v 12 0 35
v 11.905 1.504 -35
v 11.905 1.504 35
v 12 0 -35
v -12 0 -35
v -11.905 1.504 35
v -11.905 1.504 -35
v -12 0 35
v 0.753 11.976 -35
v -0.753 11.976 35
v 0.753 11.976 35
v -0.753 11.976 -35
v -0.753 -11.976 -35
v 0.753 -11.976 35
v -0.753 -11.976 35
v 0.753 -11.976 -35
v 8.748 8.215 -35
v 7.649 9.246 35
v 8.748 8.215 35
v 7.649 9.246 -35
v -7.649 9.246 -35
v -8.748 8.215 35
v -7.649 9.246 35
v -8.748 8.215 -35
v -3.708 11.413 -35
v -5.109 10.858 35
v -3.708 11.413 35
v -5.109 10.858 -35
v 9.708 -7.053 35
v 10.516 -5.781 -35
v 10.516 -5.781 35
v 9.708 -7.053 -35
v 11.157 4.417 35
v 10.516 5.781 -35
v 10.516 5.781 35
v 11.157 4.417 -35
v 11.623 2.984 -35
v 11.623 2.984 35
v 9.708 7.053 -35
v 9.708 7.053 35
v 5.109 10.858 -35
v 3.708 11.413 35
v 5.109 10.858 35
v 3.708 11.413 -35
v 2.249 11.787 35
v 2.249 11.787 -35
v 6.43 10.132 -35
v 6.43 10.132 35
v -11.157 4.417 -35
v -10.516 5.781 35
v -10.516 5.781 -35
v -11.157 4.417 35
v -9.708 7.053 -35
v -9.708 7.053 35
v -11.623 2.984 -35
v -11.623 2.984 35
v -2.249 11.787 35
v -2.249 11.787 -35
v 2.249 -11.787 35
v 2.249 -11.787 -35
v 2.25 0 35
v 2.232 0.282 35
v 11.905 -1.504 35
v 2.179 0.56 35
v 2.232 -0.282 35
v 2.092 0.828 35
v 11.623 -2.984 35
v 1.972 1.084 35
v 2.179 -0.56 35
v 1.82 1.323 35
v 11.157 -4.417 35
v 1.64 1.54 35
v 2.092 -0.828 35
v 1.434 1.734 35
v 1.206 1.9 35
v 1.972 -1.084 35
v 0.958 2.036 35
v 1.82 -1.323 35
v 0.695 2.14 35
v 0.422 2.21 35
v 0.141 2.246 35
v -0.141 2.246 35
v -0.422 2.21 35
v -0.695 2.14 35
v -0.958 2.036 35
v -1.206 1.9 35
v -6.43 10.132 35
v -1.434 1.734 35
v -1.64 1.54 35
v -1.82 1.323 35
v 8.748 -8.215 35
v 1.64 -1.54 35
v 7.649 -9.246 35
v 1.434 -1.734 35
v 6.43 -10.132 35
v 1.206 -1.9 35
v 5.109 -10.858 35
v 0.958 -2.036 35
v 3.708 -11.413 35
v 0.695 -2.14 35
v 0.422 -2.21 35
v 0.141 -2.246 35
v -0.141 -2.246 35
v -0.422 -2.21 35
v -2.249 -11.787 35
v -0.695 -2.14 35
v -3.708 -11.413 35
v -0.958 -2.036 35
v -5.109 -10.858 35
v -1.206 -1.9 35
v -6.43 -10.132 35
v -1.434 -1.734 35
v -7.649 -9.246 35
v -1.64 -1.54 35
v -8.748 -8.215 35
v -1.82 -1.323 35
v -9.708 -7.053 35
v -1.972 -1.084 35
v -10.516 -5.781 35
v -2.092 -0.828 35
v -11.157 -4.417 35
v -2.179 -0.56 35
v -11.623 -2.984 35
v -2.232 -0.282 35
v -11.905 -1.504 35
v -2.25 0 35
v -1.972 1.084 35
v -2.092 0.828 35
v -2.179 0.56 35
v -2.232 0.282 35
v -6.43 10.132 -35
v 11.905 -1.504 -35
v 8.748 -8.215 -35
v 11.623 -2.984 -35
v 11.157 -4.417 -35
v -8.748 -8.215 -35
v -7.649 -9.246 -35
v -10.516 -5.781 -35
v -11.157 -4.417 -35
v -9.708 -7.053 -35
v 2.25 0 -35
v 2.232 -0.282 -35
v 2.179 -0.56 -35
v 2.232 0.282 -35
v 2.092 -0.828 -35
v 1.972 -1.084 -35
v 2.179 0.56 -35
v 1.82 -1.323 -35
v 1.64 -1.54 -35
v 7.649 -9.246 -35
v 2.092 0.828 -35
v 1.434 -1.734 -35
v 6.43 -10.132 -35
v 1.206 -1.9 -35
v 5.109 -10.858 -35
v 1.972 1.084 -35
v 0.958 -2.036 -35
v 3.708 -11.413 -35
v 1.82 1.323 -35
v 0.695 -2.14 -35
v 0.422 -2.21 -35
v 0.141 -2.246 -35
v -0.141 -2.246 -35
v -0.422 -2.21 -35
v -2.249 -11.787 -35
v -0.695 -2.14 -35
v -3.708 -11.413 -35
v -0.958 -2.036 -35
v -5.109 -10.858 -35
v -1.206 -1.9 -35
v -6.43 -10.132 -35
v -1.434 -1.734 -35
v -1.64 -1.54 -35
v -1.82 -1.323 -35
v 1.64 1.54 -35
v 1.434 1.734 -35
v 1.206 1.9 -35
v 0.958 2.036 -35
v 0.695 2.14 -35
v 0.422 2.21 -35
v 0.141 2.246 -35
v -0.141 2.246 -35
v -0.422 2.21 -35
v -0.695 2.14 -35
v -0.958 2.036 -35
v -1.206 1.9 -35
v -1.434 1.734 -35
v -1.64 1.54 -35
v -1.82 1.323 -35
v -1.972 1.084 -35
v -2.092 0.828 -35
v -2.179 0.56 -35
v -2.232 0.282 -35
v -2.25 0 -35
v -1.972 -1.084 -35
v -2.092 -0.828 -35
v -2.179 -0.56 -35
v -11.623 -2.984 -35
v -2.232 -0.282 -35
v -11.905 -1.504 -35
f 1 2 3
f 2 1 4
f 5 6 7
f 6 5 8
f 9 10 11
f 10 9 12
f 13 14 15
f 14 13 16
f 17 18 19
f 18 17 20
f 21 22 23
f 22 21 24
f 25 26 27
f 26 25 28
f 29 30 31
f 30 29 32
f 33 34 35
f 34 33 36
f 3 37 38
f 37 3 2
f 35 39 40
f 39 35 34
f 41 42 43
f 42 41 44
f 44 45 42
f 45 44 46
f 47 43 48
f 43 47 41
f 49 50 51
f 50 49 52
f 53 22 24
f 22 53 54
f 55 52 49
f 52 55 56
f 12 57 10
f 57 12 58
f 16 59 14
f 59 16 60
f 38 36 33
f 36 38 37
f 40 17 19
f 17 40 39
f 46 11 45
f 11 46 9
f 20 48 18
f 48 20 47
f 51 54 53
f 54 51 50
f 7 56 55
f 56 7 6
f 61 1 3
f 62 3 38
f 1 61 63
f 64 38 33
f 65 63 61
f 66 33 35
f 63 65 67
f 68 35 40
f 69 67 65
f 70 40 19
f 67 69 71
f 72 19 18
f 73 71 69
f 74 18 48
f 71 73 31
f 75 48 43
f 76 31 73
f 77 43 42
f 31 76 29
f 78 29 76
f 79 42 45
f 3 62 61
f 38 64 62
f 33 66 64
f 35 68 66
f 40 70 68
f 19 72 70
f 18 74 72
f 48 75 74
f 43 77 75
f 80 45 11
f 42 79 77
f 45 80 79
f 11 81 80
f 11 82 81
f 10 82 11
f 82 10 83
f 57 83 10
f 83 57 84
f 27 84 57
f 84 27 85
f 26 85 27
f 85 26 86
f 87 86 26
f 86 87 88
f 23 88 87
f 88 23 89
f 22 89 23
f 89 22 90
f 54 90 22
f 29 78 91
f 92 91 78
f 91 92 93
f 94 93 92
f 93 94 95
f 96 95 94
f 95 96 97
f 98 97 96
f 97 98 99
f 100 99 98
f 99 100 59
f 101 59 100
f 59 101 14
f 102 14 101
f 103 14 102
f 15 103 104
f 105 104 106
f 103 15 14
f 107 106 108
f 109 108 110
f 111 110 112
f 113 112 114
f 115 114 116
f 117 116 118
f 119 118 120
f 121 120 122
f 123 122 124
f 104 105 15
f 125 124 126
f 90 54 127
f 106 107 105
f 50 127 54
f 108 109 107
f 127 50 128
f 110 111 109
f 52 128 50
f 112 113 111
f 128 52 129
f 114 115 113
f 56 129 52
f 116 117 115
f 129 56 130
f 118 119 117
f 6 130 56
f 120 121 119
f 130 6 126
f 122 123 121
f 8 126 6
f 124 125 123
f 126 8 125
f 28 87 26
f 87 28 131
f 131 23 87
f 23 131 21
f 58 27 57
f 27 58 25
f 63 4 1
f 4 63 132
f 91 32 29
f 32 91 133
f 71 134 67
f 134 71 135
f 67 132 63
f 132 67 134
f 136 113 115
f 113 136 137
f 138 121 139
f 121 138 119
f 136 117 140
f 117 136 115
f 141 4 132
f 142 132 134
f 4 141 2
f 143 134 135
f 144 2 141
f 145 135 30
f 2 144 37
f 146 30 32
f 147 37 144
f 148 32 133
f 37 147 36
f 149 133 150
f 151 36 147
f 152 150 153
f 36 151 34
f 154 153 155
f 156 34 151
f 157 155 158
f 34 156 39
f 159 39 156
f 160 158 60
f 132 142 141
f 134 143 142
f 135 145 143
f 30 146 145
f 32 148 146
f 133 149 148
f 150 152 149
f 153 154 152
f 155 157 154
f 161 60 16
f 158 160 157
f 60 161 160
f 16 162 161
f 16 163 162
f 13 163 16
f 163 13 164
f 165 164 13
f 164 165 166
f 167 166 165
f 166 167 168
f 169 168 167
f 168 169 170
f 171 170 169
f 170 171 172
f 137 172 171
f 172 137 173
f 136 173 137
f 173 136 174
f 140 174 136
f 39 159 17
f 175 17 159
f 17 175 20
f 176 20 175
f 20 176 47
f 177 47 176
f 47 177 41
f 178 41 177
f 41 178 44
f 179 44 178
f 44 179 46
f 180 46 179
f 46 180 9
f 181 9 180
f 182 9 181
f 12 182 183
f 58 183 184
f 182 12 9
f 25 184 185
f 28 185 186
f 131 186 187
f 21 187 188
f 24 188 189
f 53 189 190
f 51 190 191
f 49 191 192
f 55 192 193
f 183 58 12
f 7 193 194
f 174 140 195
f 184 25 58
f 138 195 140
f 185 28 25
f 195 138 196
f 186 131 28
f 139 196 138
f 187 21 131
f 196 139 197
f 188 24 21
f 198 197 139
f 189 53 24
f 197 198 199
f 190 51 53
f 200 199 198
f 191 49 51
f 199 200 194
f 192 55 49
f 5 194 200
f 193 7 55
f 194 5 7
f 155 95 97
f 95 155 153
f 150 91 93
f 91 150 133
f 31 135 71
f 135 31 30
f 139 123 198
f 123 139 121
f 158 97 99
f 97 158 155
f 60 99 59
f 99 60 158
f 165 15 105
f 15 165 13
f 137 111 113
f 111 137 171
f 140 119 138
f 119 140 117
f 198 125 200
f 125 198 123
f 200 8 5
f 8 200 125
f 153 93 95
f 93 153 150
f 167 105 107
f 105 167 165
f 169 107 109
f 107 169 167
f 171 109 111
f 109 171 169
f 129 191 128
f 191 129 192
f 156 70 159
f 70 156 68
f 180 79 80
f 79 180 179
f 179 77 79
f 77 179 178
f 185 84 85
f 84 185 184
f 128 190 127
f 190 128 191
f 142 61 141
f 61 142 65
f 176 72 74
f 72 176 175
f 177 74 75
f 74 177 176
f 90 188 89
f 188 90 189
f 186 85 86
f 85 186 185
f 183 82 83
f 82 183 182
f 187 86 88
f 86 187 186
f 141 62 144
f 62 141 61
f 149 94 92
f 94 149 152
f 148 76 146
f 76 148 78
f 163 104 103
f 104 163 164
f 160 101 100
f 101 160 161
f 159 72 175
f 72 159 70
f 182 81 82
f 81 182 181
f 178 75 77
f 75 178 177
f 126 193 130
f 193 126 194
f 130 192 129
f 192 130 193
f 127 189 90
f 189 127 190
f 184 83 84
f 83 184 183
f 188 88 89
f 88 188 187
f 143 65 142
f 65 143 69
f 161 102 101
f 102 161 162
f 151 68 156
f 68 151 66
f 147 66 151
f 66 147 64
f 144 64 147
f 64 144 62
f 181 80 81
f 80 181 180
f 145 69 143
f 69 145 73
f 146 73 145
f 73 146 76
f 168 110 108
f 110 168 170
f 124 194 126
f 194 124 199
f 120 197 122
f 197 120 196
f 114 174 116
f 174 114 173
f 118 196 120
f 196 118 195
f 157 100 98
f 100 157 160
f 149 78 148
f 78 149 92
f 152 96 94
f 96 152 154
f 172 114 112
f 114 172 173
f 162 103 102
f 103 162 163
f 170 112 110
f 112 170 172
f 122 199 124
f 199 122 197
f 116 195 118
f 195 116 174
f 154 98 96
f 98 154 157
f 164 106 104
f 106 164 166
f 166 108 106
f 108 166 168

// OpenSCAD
$fn = 50;


difference() {
	union() {
		translate(v = [0, 0, -35.0000000000]) {
			cylinder(h = 70, r = 12.0000000000);
		}
	}
	union() {
		translate(v = [0, 0, -100.0000000000]) {
			cylinder(h = 200, r = 2.2500000000);
		}
	}
}
